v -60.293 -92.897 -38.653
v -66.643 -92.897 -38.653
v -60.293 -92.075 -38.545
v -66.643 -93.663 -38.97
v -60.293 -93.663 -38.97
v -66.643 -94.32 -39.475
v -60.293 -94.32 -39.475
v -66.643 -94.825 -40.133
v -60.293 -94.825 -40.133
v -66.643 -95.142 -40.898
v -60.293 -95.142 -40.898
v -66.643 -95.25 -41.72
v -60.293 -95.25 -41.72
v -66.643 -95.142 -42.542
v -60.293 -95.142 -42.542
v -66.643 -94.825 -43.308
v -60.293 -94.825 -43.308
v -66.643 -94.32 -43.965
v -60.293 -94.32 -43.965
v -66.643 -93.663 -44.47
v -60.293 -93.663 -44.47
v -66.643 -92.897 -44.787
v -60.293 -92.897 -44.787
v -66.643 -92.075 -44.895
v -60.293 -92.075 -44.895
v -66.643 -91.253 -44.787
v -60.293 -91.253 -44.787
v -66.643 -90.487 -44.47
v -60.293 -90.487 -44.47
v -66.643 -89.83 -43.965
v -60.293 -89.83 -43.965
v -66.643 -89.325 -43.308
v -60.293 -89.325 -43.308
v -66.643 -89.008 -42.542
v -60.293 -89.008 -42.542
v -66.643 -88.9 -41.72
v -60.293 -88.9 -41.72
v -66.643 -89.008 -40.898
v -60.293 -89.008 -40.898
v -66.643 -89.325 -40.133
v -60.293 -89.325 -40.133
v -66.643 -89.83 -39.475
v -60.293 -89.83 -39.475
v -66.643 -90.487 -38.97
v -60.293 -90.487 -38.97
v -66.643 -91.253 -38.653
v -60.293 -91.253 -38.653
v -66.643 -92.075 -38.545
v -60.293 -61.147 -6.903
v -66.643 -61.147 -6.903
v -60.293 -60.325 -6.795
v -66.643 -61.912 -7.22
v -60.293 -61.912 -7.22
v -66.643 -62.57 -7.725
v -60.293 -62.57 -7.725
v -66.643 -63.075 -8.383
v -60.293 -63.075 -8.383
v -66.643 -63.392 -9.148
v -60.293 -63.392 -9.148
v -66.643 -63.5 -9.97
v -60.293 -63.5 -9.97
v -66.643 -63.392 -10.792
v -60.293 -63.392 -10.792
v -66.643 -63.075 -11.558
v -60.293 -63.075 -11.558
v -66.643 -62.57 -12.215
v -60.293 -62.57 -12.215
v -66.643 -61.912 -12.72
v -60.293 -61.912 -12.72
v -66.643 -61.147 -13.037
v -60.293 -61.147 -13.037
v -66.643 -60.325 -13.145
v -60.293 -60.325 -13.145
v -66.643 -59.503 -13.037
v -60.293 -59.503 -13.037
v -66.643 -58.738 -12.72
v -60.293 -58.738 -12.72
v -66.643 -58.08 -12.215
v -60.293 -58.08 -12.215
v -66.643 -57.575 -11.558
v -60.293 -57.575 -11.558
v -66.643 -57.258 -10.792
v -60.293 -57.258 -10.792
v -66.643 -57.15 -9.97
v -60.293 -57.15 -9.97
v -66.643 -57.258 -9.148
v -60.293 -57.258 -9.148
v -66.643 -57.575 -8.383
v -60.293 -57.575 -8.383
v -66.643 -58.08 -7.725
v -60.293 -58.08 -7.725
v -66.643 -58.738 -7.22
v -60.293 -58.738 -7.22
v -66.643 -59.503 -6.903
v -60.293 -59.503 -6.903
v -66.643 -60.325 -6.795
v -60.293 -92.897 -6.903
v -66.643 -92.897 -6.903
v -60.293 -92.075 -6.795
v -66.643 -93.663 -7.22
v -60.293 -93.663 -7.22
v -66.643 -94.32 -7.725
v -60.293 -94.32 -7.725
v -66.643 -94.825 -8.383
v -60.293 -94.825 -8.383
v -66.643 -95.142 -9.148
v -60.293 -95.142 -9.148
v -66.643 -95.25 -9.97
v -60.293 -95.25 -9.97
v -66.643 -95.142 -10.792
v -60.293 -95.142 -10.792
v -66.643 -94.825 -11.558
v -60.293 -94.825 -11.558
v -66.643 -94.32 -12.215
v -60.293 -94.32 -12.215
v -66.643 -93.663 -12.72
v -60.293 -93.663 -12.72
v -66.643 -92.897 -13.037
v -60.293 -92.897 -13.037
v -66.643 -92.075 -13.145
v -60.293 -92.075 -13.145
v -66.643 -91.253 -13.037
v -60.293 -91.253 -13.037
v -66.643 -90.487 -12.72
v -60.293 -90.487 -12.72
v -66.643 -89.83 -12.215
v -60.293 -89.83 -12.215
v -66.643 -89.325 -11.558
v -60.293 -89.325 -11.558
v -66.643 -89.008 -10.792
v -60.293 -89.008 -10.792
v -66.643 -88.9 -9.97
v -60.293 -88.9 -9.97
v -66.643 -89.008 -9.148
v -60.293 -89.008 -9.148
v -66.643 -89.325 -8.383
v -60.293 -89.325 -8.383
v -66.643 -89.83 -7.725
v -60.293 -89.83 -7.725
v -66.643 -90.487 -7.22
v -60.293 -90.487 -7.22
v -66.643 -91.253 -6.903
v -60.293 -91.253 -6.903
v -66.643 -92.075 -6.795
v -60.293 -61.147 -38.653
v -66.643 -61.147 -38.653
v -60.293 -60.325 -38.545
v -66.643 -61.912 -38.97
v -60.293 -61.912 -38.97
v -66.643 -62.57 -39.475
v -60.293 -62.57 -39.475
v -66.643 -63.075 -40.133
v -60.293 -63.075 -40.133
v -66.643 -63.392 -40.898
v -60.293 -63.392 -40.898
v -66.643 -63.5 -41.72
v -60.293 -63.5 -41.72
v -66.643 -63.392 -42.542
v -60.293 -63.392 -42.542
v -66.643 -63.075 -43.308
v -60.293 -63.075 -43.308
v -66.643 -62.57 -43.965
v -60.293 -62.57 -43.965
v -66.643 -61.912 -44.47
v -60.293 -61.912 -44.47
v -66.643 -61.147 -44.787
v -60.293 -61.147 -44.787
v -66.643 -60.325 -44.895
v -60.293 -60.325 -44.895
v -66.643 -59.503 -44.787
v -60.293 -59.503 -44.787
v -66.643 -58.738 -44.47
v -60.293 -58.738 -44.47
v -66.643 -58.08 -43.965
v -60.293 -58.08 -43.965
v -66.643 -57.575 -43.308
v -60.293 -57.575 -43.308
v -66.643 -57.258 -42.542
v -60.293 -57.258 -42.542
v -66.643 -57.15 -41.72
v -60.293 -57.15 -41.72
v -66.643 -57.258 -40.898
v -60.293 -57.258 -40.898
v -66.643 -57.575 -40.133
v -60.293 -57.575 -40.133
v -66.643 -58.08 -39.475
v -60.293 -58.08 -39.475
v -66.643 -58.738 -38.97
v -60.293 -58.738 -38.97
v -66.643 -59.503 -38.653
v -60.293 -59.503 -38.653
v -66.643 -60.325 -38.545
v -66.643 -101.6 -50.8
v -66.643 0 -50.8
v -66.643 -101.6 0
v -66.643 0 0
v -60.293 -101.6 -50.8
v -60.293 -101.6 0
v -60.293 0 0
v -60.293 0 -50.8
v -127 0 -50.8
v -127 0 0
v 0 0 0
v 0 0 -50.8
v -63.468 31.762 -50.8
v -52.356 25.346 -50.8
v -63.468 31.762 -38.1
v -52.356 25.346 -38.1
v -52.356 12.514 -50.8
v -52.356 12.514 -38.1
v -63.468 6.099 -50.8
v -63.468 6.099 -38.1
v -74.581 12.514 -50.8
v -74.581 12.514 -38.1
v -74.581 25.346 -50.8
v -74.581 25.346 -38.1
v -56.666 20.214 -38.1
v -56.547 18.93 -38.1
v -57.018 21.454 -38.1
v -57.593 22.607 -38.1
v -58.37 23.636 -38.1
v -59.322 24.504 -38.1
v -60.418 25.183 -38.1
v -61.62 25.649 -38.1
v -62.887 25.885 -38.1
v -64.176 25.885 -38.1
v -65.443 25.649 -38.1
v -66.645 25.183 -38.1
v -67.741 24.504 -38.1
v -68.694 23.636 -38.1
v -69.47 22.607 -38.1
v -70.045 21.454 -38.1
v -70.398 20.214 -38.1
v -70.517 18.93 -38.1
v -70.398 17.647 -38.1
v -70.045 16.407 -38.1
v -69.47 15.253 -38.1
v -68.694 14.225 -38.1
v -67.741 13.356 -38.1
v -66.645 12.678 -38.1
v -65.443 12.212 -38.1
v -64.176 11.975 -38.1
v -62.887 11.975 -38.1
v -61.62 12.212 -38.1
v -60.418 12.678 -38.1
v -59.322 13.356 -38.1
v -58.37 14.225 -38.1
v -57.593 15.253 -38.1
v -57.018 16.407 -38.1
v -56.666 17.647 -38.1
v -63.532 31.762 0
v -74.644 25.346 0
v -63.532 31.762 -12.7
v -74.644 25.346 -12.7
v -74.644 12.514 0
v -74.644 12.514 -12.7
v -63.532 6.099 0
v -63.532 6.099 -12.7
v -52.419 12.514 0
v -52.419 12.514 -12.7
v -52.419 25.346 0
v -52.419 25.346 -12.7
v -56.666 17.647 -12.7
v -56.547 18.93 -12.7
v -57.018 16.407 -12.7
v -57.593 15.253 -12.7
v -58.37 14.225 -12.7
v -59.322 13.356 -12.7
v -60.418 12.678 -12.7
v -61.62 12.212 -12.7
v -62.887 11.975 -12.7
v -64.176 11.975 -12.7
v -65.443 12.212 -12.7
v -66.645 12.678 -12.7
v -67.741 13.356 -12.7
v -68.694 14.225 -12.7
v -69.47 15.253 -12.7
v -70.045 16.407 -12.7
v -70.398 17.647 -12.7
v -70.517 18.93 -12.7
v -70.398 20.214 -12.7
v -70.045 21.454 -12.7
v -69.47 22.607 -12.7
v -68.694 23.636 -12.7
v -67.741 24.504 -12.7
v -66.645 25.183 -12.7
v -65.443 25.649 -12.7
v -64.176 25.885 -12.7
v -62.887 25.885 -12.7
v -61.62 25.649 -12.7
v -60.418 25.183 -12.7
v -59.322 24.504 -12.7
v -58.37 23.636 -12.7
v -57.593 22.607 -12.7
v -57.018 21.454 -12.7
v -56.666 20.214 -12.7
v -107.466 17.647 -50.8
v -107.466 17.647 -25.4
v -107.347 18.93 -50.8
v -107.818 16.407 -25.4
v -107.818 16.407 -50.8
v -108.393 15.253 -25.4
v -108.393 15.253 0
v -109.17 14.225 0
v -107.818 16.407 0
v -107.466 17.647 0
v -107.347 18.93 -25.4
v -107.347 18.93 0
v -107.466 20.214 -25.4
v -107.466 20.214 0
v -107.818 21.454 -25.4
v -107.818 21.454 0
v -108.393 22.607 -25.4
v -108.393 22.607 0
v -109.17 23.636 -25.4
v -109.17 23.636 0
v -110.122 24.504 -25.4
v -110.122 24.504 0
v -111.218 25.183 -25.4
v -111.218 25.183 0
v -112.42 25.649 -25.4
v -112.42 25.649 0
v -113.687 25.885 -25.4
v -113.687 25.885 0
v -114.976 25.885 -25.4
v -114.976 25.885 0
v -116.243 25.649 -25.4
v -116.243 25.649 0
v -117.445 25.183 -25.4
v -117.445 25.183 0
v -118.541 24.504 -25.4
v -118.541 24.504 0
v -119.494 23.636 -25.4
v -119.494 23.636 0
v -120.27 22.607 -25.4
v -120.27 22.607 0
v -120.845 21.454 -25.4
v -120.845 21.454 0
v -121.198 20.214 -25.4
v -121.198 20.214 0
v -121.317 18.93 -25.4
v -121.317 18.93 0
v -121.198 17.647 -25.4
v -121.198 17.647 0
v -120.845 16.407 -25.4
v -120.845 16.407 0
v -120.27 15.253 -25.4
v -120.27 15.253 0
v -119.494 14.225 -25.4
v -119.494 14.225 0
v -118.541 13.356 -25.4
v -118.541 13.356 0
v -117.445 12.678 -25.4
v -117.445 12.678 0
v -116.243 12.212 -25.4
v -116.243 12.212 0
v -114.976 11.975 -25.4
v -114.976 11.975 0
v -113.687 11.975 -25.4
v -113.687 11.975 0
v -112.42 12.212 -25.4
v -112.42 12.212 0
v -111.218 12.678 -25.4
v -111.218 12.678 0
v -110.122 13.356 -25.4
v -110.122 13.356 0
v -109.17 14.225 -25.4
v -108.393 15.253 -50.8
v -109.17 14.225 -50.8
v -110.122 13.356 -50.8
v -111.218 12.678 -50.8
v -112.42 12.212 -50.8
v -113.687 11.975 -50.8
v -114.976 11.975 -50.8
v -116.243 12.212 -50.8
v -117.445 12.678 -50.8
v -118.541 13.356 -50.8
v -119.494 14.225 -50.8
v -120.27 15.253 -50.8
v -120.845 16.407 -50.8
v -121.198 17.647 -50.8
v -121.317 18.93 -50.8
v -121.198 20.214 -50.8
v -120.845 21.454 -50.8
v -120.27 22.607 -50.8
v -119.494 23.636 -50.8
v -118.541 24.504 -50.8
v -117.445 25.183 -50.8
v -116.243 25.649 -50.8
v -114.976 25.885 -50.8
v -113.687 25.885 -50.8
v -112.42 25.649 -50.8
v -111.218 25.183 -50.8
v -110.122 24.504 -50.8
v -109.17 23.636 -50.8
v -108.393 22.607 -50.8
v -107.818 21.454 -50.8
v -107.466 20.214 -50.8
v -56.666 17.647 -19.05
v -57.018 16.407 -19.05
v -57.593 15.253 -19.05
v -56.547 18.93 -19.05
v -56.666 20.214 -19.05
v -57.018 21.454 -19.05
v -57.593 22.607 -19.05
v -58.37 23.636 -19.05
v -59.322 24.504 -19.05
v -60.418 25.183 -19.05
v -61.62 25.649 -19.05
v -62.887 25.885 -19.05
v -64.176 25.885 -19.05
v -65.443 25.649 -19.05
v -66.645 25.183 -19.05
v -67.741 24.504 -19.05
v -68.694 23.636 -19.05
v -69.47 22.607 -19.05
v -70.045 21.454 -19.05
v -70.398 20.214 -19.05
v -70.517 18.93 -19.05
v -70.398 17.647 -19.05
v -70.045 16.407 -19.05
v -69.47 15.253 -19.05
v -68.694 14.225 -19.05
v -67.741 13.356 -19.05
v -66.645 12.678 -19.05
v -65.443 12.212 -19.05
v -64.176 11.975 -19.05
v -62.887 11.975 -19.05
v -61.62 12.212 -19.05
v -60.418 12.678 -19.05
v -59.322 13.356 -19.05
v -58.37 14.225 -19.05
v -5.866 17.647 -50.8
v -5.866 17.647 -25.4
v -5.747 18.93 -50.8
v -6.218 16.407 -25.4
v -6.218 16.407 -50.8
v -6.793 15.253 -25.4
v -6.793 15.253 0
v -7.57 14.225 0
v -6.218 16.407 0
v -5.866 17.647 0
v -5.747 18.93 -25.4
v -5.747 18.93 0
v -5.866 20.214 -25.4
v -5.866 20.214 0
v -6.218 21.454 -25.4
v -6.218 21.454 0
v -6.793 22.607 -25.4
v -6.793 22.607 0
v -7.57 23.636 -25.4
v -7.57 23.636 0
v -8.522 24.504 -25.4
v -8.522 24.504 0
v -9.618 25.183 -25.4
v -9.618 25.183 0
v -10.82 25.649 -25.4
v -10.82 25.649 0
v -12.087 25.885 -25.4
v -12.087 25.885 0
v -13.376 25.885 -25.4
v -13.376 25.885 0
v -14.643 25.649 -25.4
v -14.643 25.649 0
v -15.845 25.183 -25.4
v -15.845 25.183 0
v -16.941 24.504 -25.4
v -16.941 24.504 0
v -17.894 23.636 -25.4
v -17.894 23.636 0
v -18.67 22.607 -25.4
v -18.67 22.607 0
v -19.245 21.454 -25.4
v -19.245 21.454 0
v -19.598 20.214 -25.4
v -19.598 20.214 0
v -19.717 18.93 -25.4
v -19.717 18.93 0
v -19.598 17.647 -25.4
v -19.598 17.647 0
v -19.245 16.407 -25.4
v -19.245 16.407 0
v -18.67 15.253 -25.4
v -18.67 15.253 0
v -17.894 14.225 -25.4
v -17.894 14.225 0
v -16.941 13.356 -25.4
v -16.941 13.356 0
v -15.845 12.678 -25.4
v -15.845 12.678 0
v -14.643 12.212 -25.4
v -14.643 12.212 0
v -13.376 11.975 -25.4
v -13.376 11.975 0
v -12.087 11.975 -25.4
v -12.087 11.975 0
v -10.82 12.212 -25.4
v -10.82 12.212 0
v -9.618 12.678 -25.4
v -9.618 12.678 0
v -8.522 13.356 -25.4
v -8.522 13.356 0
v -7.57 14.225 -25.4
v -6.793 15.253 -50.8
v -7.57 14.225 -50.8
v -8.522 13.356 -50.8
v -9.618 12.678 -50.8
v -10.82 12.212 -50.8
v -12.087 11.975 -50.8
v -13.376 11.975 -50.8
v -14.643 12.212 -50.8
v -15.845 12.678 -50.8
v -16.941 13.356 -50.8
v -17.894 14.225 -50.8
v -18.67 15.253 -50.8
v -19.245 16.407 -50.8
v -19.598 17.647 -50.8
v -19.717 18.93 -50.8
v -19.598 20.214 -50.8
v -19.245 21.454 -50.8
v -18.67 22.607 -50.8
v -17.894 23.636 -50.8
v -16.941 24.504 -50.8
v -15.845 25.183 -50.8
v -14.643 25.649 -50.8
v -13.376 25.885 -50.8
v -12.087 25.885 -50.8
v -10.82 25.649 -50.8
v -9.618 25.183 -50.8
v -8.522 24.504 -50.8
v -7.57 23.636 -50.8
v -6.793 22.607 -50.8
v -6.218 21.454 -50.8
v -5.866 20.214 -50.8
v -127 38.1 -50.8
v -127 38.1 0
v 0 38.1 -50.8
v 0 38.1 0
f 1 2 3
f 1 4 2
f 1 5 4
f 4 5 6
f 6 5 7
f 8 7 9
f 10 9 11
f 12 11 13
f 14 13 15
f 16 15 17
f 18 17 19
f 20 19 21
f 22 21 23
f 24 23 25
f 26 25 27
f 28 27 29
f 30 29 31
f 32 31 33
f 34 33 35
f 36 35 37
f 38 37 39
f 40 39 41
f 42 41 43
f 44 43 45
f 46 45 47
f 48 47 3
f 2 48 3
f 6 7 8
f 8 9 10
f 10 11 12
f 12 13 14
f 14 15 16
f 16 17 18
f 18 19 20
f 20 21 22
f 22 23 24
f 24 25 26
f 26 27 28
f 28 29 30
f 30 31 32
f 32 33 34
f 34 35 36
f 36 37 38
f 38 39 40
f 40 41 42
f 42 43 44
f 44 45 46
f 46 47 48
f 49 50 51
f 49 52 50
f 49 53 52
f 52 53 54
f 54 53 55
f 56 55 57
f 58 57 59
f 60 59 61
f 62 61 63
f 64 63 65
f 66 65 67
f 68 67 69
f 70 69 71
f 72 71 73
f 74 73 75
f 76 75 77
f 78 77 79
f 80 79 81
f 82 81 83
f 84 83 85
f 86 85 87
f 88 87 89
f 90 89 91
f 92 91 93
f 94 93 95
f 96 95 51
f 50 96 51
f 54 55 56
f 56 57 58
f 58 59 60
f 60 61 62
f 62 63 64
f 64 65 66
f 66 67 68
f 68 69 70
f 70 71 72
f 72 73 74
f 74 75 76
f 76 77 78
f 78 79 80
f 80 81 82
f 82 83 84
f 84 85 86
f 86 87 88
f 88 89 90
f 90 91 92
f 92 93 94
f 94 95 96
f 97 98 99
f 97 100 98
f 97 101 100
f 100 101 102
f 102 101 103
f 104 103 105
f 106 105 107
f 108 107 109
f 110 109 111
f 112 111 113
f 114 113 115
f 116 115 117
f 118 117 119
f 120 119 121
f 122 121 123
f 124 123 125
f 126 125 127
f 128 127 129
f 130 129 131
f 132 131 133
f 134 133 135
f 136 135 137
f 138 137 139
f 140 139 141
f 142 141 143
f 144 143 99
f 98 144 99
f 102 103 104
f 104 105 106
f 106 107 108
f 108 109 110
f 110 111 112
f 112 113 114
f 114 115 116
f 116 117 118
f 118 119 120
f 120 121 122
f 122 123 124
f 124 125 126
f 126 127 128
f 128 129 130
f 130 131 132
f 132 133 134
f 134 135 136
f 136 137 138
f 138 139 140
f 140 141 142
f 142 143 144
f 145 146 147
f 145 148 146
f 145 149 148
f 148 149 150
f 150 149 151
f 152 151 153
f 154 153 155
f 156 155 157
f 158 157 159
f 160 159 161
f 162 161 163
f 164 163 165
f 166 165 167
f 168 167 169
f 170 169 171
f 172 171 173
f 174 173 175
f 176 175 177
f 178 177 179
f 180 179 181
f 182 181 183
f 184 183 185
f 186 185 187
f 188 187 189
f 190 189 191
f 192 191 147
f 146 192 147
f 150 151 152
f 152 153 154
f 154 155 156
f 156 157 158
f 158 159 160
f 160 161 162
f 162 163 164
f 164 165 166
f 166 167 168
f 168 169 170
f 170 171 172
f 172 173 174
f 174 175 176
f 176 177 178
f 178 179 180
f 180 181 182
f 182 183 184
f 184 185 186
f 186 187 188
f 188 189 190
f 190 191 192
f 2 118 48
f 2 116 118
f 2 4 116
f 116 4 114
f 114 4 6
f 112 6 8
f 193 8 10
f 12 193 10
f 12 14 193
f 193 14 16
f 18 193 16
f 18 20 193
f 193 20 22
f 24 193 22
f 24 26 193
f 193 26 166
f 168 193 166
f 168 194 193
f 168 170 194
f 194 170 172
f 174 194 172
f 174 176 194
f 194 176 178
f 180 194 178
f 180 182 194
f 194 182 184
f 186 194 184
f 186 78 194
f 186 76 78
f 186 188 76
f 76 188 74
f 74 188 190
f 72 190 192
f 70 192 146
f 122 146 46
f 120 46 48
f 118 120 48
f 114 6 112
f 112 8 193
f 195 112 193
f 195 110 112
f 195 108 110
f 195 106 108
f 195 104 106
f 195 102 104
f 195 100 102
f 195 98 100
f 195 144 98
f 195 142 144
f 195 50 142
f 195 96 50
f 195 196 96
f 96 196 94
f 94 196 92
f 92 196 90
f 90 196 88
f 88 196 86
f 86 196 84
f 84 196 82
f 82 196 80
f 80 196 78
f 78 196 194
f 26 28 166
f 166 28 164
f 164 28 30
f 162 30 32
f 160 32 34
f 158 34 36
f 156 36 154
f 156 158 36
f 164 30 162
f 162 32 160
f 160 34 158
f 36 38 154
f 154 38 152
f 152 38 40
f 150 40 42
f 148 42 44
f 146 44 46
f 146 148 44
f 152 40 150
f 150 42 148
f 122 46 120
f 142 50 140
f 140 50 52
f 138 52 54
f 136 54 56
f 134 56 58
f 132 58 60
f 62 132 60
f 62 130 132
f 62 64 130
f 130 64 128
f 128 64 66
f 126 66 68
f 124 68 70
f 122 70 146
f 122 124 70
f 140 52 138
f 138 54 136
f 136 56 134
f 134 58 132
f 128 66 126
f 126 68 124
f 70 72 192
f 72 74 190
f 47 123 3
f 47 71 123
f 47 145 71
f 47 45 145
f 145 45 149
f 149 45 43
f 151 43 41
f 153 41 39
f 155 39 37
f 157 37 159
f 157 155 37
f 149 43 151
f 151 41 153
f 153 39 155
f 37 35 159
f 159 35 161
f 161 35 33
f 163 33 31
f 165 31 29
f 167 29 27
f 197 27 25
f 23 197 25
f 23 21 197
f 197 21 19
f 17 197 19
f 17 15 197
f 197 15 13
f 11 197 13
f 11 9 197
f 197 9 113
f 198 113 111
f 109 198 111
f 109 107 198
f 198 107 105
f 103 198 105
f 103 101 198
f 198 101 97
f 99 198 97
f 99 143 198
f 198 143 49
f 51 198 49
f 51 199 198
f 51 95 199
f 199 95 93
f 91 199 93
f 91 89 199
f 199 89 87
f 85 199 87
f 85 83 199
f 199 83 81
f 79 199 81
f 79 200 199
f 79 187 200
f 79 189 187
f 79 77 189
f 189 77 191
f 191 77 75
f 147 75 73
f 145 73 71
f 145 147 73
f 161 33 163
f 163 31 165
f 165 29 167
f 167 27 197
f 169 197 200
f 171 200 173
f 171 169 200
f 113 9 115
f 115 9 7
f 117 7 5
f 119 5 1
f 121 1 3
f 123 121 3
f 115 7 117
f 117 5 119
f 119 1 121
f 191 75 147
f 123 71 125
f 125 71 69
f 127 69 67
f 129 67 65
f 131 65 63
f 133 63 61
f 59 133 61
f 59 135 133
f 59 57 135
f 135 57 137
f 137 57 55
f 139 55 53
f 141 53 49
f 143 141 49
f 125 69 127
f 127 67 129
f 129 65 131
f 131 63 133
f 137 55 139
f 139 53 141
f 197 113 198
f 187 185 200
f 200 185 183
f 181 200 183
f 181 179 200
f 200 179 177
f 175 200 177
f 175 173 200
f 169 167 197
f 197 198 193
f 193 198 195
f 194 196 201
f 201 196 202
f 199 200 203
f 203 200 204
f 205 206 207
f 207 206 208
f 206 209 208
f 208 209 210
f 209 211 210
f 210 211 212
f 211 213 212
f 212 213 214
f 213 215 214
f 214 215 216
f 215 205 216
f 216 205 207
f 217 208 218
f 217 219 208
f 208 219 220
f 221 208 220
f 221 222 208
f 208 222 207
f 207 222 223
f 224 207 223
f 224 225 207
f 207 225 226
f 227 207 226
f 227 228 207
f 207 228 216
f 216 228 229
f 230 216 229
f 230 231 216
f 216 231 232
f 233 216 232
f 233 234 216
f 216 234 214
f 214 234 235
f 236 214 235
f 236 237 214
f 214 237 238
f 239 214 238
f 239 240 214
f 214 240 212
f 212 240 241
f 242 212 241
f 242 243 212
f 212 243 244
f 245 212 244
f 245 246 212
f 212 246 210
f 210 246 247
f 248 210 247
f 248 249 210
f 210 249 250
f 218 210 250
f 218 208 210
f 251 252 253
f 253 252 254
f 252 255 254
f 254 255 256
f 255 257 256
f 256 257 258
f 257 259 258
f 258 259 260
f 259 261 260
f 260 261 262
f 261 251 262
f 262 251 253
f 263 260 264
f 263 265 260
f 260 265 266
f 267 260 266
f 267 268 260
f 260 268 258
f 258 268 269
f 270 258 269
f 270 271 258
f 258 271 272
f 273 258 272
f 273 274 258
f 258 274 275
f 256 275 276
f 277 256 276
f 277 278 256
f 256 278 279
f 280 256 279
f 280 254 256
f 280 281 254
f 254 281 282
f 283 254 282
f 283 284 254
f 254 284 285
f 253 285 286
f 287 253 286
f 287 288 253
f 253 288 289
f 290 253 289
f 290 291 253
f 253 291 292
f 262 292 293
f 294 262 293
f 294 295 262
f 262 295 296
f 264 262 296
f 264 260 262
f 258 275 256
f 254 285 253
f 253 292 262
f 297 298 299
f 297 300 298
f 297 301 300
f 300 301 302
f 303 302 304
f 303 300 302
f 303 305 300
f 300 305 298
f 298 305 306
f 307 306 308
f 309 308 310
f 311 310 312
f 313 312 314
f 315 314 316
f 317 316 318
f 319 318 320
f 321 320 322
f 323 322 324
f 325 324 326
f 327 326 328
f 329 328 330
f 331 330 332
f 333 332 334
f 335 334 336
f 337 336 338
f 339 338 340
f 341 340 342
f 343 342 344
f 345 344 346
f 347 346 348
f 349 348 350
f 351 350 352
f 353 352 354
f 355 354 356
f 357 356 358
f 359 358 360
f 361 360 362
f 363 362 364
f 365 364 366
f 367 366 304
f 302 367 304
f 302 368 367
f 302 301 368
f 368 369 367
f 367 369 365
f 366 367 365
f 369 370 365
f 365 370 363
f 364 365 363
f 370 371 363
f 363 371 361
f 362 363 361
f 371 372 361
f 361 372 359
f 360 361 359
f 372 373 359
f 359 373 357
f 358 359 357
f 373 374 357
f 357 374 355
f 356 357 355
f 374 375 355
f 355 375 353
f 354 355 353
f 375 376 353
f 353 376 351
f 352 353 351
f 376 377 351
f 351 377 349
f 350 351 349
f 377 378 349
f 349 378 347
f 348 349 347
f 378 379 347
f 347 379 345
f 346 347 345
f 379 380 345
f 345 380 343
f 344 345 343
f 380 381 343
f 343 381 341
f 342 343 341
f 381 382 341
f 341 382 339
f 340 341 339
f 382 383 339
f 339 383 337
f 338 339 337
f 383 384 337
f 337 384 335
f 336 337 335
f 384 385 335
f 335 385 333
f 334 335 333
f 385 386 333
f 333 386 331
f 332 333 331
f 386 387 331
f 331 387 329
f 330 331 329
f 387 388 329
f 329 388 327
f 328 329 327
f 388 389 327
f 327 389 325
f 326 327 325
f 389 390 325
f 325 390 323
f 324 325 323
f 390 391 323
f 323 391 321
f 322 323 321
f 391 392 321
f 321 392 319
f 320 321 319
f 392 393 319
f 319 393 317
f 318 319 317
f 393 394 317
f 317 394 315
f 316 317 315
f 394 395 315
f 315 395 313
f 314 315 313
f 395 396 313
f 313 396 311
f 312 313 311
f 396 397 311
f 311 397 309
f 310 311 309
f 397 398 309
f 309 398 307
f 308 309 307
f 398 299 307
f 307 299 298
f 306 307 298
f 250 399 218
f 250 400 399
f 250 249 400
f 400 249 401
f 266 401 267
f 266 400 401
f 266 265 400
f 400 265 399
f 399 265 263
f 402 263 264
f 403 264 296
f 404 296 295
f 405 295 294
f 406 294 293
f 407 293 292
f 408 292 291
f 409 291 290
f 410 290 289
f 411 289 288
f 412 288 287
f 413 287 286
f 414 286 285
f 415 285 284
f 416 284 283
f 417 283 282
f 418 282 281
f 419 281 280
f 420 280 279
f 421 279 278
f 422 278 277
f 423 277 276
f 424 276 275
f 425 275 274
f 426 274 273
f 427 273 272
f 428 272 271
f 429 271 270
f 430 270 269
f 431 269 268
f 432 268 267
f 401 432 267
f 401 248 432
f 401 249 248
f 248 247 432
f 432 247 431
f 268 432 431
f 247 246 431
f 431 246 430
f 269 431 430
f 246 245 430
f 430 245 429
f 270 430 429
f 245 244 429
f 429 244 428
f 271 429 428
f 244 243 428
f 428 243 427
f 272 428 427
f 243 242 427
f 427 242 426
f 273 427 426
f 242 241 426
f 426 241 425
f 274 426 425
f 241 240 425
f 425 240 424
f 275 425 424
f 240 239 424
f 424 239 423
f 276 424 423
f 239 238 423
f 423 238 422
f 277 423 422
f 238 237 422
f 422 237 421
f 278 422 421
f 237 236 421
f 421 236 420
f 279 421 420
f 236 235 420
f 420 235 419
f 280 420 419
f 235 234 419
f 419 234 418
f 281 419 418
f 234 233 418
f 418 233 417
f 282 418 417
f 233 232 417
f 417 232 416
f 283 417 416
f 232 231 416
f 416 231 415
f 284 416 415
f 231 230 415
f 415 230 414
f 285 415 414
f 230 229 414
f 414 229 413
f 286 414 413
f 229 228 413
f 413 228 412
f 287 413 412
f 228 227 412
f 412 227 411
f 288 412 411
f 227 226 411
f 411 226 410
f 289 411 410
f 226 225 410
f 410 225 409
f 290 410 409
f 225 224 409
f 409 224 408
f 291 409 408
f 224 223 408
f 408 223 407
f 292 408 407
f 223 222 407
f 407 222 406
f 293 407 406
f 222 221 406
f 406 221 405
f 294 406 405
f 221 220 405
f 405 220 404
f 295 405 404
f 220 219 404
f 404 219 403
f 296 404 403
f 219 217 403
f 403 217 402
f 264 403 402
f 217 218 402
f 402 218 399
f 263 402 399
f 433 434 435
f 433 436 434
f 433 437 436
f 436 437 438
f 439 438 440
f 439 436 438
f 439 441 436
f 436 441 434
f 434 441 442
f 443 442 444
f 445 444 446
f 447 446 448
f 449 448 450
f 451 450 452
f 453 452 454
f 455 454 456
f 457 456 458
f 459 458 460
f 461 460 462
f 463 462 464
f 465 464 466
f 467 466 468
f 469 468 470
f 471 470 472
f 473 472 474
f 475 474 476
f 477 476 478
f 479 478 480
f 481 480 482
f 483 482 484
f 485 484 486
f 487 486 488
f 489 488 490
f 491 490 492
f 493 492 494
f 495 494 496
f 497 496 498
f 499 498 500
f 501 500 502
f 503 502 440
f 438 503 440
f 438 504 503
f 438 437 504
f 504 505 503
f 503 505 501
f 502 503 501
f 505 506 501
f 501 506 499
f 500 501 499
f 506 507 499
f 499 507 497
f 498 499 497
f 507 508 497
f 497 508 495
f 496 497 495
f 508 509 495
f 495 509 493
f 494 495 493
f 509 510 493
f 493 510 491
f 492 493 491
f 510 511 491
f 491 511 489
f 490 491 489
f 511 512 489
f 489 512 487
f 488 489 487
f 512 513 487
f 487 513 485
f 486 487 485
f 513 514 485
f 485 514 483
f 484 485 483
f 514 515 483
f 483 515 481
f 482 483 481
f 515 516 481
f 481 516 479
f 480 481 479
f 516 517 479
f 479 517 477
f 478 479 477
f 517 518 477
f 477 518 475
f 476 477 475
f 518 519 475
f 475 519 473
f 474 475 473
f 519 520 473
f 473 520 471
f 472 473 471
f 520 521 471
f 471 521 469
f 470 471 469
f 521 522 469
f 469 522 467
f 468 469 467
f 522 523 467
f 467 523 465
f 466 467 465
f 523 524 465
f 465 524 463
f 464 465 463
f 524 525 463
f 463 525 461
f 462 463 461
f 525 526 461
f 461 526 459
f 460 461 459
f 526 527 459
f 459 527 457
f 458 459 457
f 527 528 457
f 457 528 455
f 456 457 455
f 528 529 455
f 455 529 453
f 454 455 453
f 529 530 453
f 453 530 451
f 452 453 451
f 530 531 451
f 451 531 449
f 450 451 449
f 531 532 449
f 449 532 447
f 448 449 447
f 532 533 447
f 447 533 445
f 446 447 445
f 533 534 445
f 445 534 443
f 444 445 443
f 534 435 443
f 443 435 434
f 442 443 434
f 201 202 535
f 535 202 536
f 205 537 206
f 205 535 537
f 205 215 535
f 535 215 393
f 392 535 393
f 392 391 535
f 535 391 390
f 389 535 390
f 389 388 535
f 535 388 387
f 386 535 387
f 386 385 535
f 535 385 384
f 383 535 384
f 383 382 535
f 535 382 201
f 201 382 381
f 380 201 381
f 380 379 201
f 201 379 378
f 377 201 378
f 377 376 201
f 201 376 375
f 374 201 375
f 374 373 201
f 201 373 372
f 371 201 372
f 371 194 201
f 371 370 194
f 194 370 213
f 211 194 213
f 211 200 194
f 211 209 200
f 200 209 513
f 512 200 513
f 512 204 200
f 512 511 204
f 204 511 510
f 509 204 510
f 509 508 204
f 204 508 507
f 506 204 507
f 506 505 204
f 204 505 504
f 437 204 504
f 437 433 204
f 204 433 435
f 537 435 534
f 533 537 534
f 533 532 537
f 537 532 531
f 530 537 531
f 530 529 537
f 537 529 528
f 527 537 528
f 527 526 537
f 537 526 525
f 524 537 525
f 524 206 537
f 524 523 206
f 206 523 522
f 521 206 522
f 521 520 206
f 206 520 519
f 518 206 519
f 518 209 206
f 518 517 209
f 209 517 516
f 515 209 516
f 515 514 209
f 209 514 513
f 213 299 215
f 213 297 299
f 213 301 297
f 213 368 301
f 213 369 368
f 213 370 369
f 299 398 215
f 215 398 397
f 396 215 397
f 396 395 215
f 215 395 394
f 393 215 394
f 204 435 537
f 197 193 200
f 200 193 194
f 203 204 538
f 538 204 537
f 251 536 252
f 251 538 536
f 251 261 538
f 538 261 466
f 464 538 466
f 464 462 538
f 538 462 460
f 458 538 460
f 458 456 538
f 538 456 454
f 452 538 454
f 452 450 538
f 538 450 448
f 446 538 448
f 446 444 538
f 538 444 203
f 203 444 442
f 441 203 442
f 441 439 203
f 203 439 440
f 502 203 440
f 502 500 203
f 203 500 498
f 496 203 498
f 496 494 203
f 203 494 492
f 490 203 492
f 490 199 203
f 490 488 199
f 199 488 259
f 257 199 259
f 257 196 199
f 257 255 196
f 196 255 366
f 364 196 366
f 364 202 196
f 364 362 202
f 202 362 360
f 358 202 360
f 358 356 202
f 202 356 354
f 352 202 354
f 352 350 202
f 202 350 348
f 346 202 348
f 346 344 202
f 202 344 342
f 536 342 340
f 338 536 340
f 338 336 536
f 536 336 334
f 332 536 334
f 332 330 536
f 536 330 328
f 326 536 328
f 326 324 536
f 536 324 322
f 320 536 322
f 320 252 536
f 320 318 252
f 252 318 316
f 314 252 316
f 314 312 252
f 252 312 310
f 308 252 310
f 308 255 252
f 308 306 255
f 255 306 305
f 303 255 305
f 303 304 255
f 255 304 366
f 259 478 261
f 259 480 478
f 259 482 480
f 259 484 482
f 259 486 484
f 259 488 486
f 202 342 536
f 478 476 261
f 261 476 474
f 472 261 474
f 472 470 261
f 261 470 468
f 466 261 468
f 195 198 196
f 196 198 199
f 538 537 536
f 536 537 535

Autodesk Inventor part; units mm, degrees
ref_plane "YZ Plane" through (0, 0, 0) normal (1, 0, 0) x (0, 1, 0)
ref_plane "XZ Plane" through (0, 0, 0) normal (0, 1, 0) x (-1, 0, 0)
ref_plane "XY Plane" through (0, 0, 0) normal (0, 0, 1) x (1, 0, 0)
sketch "Sketch1" plane through (0, 0, 0) normal (0, 1, 0) x (-1, 0, 0)
  line L0 (0, 0) -> (127, 0)
  line L1 (127, 0) -> (127, -50.8)
  line L2 (127, -50.8) -> (0, -50.8)
  line L3 (0, -50.8) -> (0, 0)
  dimension "d0" = 127
  dimension "d1" = 50.8
extrude "Extrusion1" add sketch "Sketch1" along normal blind 38.1
sketch "Sketch2" plane through (-127, 0, 0) normal (0, 0, 1) x (1, 0, 0)
  line L0 (123.825, 0) -> (3.175, 0) construction
  circle A0 centre (63.4683, 18.9303) radius 6.985
  circle A1 centre (12.6683, 18.9303) radius 6.985
  circle A2 centre (114.2683, 18.9303) radius 6.985
  line L1 (63.5, 0) -> (63.5, 25.2805) construction
  line L2 (127, 0) -> (127, 38.1) construction
  line L3 (127, 19.05) -> (0, 19.05) construction
  point P0 (0, -12.7)
  dimension "d4" = 13.97
  dimension "d5" = 13.97
  dimension "d8" = 13.97
  dimension "d9" = 50.8
  dimension "d10" = 50.8
extrude "Extrusion2" cut sketch "Sketch2" against normal through all
sketch "Sketch3" plane through (-127, 0, 0) normal (0, 0, 1) x (1, 0, 0)
  circle A0 centre (63.4683, 18.9303) radius 6.985 projected
  line L0 (63.4683, 31.7619) -> (74.5808, 25.3461)
  line L1 (74.5808, 25.3461) -> (74.5808, 12.5145)
  line L2 (74.5808, 12.5145) -> (63.4683, 6.0987)
  line L3 (63.4683, 6.0987) -> (52.3558, 12.5145)
  line L4 (52.3558, 12.5145) -> (52.3558, 25.3461)
  line L5 (52.3558, 25.3461) -> (63.4683, 31.7619)
  point P0 (127, 0)
  dimension "d11" = 22.225
extrude "Extrusion3" cut sketch "Sketch3" against normal blind 12.7
sketch "Sketch4" plane through (0, 0, -50.8) normal (0, 0, -1) x (-1, 0, 0)
  line L0 (63.4683, 31.7619) -> (74.5808, 25.3461)
  line L1 (74.5808, 25.3461) -> (74.5808, 12.5145)
  line L2 (74.5808, 12.5145) -> (63.4683, 6.0987)
  line L3 (63.4683, 6.0987) -> (52.3558, 12.5145)
  line L4 (52.3558, 12.5145) -> (52.3558, 25.3461)
  line L5 (52.3558, 25.3461) -> (63.4683, 31.7619)
  point P0 (0, 0)
  point P1 (127, 0)
  point P2 (63.4683, 18.9303)
  dimension "d14" = 22.225
extrude "Extrusion5" cut sketch "Sketch4" against normal blind 12.7
sketch "Sketch5" plane through (0, 0, 0) normal (0, -1, 0) x (1, 0, 0)
  line L0 (-63.4683, -50.8) -> (-66.6433, -50.8)
  line L1 (-66.6433, -50.8) -> (-66.6433, 0)
  line L2 (-66.6433, 0) -> (-63.4683, 0)
  line L3 (-63.4683, 0) -> (-63.4683, -50.8) construction
  line L4 (-63.4683, -50.8) -> (-60.2933, -50.8)
  line L5 (-60.2933, -50.8) -> (-60.2933, 0)
  line L6 (-60.2933, 0) -> (-63.4683, 0)
  point P0 (0, 0)
  dimension "d19" = 3.175
  dimension "d20" = 50.8
extrude "Extrusion6" add sketch "Sketch5" along normal blind 101.6
sketch "Sketch6" plane through (-66.6433, 0, -50.8) normal (-1, 0, 0) x (0, 0, 1)
  line L0 (0, 0) -> (0, -101.6) construction
  line L1 (0, -101.6) -> (50.8, -101.6) construction
  line L2 (50.8, -101.6) -> (50.8, -50.8) construction
  line L3 (50.8, -50.8) -> (0, -50.8) construction
  line L4 (0, -50.8) -> (0, -101.6) construction
  line L5 (0, -50.8) -> (49.9098, -101.6) construction
  line L6 (9.0799, -92.075) -> (40.8299, -92.075) construction
  line L7 (40.8299, -92.075) -> (40.8299, -60.325) construction
  line L8 (40.8299, -60.325) -> (9.0799, -60.325) construction
  line L9 (9.0799, -60.325) -> (9.0799, -92.075) construction
  line L10 (9.0799, -92.075) -> (40.8299, -60.325) construction
  line L11 (40.8299, -92.075) -> (9.0799, -60.325) construction
  circle A0 centre (40.8299, -60.325) radius 3.175
  circle A1 centre (40.8299, -92.075) radius 3.175
  circle A2 centre (9.0799, -92.075) radius 3.175
  circle A3 centre (9.0799, -60.325) radius 3.175
  point P0 (50.8, 0)
  point P1 (24.9549, -76.2)
  dimension "d23" = 50.8
  dimension "d24" = 50.8
  dimension "d25" = 31.75
  dimension "d26" = 31.75
  dimension "d27" = 6.35
  dimension "d28" = 6.35
  dimension "d29" = 6.35
  dimension "d30" = 6.35
extrude "Extrusion7" cut sketch "Sketch6" against normal through all
properties part number "Traveller"
